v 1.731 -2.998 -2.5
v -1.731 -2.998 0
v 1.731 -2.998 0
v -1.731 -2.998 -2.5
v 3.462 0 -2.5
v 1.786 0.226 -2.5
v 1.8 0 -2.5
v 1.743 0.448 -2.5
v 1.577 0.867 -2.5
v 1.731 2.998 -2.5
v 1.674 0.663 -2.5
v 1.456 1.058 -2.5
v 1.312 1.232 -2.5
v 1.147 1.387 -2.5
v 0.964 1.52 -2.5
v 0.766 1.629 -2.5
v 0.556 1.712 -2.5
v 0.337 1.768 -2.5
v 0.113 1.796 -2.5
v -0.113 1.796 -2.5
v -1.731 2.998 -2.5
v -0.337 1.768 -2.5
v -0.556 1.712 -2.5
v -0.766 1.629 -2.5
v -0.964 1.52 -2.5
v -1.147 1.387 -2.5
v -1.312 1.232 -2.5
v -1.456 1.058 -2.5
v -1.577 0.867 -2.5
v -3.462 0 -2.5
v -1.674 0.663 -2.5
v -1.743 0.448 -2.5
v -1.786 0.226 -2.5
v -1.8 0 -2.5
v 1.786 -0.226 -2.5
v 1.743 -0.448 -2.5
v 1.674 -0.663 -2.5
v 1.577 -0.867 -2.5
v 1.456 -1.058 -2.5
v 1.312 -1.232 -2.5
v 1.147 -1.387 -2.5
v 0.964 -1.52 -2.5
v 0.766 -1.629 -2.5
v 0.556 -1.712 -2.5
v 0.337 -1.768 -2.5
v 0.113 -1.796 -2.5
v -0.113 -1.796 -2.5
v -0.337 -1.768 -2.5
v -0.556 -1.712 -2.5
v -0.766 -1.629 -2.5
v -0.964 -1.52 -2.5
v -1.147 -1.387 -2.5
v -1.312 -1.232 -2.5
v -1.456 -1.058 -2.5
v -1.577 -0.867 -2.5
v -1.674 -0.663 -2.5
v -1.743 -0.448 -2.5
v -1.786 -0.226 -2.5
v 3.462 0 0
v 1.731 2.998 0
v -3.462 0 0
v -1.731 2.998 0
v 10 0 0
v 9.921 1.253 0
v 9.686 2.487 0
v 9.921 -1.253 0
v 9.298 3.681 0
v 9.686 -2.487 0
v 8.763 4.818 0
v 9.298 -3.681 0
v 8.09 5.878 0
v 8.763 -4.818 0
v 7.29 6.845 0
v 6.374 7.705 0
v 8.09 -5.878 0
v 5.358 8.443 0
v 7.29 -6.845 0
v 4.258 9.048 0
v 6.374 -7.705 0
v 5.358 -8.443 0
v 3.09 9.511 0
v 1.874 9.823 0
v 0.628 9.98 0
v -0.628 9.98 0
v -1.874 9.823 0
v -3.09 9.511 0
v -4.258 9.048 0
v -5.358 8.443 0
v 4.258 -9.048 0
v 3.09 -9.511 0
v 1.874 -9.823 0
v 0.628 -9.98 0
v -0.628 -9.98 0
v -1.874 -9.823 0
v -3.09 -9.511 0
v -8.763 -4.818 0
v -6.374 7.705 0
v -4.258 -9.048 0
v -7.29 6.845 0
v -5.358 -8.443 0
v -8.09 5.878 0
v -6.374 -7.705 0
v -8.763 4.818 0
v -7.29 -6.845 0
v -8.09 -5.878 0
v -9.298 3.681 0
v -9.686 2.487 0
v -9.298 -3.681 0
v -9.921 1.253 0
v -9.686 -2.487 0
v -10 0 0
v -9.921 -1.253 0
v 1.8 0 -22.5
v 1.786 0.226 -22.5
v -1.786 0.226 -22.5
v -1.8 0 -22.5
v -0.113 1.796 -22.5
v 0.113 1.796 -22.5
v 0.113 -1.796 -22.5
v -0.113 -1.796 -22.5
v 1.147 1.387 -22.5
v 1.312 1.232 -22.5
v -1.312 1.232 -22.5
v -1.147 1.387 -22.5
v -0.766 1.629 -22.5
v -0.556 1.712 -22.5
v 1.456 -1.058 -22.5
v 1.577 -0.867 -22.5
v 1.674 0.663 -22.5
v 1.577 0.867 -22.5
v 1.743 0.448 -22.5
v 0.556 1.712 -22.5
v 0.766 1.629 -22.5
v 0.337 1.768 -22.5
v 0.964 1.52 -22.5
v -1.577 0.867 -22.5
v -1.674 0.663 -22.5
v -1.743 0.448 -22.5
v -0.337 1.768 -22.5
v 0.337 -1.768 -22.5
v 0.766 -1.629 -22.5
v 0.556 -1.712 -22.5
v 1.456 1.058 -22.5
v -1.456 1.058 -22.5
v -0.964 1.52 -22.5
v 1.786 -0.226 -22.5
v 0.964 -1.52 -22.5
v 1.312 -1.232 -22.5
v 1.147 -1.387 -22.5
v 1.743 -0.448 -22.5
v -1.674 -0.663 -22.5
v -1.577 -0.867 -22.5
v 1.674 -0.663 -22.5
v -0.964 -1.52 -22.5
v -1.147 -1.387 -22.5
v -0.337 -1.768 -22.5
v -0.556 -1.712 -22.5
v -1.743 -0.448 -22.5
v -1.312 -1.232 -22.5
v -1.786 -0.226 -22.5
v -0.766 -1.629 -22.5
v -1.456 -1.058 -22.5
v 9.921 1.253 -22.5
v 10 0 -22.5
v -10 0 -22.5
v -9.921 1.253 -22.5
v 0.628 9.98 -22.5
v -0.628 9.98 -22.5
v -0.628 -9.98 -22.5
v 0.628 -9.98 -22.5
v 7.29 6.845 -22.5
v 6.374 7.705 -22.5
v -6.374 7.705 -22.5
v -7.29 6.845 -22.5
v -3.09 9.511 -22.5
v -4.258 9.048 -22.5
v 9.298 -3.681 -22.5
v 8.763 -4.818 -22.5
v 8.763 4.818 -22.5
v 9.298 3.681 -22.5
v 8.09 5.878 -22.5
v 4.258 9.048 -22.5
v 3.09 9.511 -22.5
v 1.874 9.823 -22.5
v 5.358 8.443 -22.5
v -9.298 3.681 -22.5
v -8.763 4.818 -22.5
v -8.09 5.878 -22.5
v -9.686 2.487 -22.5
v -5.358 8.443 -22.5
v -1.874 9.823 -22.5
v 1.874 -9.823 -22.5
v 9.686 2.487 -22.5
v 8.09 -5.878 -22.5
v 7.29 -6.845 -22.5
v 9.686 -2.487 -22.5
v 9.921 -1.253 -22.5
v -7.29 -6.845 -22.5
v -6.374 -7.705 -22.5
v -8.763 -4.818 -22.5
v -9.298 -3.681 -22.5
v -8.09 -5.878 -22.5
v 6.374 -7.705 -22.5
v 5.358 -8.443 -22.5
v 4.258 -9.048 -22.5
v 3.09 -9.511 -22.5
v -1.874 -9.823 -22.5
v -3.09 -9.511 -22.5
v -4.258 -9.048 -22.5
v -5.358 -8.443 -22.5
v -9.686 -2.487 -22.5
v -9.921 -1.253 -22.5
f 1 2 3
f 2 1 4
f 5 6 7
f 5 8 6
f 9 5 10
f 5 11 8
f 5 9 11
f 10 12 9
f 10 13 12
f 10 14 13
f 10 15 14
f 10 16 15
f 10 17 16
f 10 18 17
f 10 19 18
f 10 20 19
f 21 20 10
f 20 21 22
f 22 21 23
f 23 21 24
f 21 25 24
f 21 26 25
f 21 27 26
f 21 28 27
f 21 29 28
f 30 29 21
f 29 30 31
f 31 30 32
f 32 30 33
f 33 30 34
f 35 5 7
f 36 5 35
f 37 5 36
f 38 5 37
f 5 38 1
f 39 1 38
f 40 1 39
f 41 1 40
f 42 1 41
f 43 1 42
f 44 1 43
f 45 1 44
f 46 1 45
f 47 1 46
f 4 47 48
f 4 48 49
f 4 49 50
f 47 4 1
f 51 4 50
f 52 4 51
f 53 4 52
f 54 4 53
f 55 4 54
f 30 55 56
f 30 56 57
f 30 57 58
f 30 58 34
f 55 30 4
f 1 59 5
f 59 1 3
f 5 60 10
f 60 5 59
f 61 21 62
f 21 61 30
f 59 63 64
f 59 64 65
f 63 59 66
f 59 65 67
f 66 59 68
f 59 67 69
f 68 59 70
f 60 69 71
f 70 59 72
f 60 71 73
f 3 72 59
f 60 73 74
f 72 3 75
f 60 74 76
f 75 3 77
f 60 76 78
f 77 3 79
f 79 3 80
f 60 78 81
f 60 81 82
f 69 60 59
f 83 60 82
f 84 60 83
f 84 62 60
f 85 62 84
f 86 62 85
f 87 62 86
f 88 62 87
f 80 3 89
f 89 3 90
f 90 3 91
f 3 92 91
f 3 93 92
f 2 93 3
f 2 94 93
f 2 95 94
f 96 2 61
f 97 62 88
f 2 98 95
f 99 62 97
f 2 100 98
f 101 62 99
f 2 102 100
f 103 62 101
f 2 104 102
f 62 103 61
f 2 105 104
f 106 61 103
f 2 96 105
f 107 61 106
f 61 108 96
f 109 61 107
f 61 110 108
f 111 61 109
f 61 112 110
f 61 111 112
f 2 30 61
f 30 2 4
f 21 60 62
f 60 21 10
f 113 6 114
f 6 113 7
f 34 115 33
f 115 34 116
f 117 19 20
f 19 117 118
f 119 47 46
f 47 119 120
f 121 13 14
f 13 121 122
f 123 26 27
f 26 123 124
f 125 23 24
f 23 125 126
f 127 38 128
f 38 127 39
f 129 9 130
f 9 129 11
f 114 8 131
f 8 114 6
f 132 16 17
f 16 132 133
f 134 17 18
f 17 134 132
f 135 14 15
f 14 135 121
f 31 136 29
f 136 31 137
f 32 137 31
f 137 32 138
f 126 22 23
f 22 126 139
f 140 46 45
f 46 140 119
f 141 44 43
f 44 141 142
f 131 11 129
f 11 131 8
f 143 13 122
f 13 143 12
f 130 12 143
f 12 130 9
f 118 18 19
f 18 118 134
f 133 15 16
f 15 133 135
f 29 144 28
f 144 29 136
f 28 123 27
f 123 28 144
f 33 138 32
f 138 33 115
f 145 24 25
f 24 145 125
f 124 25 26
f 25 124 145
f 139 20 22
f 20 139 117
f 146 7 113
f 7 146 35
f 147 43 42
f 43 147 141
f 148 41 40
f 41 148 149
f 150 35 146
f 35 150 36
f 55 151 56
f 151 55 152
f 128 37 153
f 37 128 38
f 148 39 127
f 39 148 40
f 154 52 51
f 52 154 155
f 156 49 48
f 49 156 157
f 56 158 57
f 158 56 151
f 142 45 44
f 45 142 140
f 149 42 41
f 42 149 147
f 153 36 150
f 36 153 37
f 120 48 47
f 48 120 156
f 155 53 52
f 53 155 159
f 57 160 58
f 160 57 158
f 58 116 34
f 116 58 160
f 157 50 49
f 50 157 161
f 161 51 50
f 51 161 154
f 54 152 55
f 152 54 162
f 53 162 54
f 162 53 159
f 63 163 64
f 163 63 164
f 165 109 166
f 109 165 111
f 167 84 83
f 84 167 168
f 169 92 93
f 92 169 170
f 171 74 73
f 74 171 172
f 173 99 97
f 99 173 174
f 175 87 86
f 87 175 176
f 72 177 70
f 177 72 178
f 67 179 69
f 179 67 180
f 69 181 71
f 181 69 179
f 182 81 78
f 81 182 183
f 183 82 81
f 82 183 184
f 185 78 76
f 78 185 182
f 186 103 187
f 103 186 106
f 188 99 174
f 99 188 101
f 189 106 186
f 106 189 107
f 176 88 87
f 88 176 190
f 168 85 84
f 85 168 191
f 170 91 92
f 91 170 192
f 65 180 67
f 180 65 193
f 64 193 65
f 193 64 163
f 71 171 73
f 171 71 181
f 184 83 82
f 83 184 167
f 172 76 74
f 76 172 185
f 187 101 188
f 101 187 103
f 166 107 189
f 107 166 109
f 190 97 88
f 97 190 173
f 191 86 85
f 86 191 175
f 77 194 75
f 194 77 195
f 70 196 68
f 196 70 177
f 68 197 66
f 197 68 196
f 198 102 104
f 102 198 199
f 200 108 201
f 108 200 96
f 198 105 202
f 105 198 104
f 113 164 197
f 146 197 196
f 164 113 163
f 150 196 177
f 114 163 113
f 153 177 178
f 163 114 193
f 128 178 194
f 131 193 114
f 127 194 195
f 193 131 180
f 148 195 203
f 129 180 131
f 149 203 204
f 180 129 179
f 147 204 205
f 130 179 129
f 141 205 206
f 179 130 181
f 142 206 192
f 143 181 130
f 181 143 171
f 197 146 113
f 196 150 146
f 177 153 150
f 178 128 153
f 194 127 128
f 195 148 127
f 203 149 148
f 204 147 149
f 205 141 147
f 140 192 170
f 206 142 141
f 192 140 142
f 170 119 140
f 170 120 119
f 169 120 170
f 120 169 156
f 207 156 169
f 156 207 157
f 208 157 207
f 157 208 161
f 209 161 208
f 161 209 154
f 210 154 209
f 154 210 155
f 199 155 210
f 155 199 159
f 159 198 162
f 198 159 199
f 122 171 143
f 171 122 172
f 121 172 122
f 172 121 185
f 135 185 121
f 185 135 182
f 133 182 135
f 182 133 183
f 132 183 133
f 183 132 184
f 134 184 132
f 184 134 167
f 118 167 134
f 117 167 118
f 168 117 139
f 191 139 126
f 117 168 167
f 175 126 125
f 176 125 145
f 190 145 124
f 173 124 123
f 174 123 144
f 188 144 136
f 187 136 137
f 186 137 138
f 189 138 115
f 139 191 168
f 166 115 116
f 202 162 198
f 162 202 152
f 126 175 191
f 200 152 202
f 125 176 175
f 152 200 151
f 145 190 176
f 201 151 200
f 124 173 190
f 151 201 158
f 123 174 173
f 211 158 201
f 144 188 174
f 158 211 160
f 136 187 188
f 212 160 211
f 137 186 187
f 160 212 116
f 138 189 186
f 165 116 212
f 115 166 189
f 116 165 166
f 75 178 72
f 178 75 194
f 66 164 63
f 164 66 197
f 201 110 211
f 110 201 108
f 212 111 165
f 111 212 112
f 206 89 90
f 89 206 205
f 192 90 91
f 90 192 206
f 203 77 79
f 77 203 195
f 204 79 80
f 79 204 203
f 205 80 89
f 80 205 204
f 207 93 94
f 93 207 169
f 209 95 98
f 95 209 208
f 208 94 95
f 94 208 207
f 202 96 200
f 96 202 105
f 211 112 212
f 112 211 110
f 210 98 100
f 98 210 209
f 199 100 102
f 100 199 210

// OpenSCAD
$fn = 50;


difference() {
	union() {
		translate(v = [0, 0, -22.5000000000]) {
			cylinder(h = 22.5000000000, r = 10.0000000000);
		}
	}
	union() {
		translate(v = [0, 0, 0]) {
			rotate(a = [0, 0, 0]) {
				difference() {
					union() {
						translate(v = [0, 0, -2.5000000000]) {
							linear_extrude(height = 2.5000000000) {
								polygon(points = [[3.4620000000, 0.0000000000], [1.7310000000, 2.9981799479], [-1.7310000000, 2.9981799479], [-3.4620000000, 0.0000000000], [-1.7310000000, -2.9981799479], [1.7310000000, -2.9981799479]]);
							}
						}
					}
					union();
				}
			}
		}
		#translate(v = [0, 0, -100.0000000000]) {
			cylinder(h = 200, r = 1.8000000000);
		}
	}
}
